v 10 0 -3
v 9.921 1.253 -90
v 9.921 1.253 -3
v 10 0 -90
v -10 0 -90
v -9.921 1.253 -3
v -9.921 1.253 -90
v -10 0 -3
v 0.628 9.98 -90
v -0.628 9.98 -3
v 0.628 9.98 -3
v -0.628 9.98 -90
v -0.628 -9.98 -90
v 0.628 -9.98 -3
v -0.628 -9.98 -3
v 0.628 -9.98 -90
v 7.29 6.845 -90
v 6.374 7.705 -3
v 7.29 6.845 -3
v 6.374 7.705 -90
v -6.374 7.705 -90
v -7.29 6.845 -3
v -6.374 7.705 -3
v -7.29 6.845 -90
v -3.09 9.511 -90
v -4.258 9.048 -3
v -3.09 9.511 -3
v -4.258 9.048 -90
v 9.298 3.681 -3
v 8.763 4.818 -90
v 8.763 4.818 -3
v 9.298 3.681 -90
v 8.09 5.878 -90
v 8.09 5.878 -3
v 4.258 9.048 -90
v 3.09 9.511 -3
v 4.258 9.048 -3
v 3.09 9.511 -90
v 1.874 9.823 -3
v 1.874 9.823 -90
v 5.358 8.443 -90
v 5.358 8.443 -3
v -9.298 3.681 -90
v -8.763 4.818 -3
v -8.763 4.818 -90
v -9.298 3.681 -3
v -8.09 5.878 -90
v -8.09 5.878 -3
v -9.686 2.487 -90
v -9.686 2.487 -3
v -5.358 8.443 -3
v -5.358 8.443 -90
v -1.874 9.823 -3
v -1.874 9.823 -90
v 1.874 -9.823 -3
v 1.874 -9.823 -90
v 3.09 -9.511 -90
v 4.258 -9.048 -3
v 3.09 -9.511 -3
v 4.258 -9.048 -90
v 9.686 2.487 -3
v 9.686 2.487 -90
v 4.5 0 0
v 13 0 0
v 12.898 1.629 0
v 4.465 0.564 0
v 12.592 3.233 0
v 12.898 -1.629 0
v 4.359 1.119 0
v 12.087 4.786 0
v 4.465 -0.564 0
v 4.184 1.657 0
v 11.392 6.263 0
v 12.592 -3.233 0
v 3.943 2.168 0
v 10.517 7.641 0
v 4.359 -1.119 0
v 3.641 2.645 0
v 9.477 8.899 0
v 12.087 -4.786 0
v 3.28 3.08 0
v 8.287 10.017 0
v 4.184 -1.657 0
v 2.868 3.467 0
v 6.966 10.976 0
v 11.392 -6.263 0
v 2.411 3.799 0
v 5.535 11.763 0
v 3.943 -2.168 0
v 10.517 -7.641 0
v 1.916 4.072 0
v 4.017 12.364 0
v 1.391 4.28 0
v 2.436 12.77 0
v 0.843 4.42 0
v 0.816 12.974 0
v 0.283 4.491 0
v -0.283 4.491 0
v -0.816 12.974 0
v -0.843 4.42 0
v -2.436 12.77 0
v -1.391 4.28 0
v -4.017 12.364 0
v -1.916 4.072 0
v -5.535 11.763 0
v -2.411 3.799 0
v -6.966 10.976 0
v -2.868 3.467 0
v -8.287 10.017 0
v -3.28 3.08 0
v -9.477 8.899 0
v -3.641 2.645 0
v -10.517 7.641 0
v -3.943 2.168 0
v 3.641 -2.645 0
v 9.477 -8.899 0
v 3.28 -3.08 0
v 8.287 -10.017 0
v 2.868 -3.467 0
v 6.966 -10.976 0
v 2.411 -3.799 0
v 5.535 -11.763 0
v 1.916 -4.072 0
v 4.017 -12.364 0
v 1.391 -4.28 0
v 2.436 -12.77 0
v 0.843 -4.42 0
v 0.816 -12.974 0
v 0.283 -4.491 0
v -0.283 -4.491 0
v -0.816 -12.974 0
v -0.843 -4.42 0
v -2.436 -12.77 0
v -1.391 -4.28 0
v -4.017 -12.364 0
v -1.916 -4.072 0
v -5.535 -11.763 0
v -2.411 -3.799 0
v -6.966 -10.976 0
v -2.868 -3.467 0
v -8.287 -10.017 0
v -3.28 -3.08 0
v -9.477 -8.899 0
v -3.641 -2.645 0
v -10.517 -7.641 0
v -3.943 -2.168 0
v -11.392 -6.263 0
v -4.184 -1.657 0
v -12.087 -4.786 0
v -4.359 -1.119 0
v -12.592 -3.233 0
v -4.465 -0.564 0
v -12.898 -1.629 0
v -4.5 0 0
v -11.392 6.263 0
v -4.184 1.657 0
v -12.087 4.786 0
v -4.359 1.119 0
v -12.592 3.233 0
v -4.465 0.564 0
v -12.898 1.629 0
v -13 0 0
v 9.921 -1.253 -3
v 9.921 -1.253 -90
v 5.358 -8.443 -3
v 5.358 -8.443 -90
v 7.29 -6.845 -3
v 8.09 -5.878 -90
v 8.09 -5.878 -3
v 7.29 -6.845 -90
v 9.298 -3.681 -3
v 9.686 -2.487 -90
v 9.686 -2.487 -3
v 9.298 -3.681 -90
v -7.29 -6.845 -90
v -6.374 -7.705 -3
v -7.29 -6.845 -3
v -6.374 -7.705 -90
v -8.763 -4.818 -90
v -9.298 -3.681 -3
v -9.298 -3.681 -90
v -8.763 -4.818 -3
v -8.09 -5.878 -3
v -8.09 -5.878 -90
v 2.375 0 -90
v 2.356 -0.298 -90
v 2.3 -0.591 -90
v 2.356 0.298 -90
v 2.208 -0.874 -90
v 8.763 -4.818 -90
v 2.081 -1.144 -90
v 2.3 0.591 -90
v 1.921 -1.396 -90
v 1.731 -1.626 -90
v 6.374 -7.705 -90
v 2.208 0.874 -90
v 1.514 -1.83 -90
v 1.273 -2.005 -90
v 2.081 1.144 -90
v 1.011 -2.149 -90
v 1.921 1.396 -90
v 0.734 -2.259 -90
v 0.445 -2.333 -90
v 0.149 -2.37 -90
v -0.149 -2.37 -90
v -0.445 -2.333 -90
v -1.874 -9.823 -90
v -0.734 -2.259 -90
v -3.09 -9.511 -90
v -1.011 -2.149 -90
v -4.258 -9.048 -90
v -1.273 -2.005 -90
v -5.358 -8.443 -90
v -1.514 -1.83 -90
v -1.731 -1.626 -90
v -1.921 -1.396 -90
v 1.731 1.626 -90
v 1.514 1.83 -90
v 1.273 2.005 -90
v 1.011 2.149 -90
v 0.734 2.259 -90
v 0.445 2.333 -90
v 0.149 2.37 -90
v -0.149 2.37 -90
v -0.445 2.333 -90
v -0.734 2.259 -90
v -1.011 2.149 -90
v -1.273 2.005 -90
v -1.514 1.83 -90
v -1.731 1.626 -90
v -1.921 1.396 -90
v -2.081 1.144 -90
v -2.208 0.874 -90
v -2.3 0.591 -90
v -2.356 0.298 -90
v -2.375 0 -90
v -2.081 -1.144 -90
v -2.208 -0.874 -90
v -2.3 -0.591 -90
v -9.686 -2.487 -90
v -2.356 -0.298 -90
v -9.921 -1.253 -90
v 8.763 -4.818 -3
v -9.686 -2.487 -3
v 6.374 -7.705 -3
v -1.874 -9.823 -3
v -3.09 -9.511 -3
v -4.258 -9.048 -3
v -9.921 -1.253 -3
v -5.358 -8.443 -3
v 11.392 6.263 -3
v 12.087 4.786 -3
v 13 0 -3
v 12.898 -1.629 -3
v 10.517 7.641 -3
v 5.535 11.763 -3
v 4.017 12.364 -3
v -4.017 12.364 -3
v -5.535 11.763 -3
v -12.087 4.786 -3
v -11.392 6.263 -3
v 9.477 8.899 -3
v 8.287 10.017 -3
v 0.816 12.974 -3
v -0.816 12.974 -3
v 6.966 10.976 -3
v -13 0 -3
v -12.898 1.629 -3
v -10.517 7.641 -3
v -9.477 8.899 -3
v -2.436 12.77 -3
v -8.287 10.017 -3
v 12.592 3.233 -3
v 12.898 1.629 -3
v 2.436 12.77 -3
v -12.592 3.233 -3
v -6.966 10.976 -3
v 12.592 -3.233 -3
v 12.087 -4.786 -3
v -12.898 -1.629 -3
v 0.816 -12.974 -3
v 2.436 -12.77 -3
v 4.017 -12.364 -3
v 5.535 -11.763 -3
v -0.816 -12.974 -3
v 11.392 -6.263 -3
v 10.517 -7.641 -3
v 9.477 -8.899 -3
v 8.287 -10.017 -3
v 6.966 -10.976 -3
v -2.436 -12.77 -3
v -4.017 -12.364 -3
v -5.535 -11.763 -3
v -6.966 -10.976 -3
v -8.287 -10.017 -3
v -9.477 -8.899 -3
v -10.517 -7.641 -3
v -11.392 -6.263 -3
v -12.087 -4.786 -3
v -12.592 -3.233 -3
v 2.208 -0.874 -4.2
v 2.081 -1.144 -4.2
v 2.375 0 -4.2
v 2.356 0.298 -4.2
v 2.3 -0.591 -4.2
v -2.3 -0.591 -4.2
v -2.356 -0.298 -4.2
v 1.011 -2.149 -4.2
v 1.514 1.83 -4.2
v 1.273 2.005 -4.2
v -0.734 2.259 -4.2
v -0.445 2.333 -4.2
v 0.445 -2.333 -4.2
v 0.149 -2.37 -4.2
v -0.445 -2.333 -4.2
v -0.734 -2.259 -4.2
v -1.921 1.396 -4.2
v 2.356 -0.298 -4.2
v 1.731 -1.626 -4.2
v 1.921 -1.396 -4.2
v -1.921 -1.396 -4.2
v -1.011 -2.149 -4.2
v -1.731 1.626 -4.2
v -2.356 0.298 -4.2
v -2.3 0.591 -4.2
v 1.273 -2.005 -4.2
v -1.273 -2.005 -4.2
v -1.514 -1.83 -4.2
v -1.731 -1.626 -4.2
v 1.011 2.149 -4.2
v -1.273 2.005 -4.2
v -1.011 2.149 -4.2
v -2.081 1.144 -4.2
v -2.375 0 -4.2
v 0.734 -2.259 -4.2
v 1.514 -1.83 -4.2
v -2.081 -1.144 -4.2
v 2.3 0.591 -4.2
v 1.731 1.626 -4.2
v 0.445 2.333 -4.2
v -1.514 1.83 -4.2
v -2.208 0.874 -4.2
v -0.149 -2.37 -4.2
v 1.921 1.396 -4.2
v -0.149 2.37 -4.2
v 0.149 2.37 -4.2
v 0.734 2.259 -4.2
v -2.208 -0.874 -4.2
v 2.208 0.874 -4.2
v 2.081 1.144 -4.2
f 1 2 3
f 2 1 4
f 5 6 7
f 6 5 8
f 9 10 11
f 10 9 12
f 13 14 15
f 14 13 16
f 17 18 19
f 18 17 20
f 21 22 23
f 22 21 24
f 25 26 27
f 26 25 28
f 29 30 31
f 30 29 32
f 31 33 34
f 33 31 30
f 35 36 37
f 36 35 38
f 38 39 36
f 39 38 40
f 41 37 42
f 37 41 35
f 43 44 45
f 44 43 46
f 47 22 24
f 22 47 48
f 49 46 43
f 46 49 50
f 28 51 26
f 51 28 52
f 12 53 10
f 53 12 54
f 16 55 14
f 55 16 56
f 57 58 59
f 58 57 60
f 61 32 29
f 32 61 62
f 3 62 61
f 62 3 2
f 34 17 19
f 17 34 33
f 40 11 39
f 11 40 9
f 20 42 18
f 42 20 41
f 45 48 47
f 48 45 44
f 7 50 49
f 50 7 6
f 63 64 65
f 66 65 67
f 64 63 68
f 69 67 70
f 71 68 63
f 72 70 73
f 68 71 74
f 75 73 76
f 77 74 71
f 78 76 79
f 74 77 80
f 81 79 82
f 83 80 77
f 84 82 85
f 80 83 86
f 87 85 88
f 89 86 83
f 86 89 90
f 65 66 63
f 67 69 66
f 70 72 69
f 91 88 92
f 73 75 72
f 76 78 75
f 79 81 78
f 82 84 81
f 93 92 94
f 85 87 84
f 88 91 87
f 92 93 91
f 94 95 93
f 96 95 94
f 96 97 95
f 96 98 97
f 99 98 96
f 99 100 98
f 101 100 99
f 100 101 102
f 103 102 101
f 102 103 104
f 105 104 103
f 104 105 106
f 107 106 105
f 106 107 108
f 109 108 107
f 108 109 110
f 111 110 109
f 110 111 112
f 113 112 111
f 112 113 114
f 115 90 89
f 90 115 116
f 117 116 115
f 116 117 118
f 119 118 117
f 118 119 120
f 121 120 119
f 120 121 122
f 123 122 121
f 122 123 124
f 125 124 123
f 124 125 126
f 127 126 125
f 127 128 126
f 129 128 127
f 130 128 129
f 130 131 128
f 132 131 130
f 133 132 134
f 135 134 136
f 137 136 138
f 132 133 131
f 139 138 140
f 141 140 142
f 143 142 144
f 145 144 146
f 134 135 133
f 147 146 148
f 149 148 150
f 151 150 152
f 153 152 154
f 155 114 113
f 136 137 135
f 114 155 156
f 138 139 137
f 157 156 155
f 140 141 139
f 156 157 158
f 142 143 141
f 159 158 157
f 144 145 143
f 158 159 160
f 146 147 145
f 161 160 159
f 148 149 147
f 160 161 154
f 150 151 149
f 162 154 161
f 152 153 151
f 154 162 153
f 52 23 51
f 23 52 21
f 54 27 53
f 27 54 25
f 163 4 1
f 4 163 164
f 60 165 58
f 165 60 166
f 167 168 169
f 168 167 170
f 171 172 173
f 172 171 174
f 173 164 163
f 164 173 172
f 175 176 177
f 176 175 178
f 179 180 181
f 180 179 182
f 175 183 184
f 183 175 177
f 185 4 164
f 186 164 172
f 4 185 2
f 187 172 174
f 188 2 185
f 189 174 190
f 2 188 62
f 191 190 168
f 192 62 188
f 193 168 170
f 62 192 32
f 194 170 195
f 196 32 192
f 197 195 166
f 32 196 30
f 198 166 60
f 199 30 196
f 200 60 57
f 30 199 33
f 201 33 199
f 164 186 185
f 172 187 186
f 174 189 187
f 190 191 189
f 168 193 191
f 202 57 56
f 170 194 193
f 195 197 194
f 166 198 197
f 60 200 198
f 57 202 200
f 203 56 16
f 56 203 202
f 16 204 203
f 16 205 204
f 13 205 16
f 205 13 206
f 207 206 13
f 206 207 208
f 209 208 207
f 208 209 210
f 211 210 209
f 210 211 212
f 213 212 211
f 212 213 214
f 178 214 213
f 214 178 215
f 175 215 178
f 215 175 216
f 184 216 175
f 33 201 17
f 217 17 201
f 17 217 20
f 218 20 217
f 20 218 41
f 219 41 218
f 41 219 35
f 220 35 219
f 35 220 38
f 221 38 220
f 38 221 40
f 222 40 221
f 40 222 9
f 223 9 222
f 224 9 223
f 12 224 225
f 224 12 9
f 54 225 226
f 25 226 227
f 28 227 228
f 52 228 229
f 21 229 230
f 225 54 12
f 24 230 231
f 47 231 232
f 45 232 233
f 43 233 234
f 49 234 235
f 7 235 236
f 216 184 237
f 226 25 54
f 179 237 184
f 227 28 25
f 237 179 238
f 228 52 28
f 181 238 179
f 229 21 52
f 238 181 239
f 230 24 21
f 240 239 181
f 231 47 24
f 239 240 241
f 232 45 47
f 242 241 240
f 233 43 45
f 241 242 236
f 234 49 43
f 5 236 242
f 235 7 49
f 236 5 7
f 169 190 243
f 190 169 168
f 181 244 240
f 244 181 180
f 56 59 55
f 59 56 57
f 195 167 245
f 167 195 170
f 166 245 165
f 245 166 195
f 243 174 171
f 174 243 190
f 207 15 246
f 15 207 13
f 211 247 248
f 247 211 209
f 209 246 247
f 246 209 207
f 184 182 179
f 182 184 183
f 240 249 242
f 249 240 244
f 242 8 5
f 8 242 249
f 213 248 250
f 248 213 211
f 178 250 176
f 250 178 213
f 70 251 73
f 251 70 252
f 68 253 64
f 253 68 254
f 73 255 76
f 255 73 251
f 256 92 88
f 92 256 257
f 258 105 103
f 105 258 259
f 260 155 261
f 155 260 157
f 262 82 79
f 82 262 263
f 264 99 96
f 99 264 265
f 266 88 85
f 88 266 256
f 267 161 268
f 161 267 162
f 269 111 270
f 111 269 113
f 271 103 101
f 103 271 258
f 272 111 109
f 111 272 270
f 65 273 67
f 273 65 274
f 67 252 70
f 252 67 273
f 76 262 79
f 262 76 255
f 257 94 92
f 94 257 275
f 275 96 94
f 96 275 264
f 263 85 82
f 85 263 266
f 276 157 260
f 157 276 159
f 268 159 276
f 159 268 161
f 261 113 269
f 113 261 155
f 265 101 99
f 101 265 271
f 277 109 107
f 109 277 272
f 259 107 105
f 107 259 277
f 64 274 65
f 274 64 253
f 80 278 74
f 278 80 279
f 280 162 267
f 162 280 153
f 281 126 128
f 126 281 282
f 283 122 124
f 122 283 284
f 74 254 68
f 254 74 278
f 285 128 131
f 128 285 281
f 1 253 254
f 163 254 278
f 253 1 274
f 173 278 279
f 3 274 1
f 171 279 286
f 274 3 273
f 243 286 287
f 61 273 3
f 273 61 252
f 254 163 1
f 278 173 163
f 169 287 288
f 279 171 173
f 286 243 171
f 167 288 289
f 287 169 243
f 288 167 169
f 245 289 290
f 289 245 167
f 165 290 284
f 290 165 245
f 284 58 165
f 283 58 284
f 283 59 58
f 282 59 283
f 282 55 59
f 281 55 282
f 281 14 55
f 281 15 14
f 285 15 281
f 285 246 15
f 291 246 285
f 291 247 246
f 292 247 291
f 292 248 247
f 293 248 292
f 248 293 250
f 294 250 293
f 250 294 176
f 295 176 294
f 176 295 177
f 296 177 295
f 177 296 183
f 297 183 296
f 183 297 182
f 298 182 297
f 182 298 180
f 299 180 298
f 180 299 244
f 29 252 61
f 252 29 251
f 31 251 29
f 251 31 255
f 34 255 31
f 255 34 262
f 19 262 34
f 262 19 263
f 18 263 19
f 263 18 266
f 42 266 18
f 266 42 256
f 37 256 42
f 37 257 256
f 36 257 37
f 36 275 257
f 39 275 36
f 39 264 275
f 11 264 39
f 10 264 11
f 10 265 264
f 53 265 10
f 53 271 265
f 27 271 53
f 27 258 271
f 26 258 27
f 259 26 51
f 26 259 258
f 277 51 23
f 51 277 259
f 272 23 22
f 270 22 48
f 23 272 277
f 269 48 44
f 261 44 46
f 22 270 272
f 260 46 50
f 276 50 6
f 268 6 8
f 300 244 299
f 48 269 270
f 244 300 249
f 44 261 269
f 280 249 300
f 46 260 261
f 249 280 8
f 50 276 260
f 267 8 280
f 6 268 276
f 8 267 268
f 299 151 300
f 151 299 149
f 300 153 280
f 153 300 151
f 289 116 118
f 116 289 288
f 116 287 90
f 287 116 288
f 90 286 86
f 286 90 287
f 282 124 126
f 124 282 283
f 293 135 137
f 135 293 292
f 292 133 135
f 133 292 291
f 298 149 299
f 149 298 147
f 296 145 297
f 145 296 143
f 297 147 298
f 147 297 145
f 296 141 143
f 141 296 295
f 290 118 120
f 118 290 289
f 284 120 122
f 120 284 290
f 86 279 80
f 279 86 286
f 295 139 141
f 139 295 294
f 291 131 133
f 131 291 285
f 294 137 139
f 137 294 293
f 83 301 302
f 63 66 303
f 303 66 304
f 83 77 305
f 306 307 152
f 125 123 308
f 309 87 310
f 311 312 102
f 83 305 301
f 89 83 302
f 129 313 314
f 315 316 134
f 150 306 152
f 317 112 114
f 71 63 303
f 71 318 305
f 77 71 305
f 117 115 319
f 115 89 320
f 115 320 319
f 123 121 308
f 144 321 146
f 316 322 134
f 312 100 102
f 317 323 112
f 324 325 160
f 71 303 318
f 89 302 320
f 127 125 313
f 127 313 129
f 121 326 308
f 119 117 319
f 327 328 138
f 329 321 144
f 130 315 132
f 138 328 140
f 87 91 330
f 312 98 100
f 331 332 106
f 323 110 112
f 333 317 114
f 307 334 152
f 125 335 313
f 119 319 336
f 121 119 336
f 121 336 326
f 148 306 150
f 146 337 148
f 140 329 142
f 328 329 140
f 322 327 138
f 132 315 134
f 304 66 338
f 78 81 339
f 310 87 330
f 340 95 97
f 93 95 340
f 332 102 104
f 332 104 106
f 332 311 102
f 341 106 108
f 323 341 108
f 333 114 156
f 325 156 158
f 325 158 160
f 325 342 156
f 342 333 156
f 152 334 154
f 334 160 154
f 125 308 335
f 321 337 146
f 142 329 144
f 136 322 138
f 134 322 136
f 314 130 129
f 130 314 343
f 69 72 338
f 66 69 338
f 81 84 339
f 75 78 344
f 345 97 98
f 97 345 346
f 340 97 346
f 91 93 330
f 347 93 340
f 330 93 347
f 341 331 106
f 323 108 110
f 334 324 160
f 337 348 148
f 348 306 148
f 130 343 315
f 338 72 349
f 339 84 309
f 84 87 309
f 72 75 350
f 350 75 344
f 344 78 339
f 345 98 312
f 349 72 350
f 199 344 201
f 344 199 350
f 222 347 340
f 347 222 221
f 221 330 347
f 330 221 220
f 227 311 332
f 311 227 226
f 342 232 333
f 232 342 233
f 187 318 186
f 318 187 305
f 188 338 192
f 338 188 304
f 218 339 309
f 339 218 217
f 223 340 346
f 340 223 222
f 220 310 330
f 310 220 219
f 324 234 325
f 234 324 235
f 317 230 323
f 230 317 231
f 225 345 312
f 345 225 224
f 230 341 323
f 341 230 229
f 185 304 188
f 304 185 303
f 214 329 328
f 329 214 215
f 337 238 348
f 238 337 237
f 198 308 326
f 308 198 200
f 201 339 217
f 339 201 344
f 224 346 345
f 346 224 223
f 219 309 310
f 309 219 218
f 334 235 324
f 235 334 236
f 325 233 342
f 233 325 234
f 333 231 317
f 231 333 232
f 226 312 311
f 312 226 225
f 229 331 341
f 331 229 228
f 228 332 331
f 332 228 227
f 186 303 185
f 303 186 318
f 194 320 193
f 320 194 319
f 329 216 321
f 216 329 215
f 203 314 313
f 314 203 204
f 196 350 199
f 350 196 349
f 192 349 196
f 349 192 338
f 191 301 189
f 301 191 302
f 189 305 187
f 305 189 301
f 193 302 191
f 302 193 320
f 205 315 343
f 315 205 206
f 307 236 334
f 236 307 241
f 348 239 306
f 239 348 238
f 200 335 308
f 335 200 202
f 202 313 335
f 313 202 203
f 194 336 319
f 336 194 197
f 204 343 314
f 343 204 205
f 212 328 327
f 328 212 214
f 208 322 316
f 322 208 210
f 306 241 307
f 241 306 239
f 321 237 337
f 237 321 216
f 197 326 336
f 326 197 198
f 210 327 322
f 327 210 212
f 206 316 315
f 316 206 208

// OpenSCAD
$fn = 50;


difference() {
	union() {
		translate(v = [0, 0, -90.0000000000]) {
			cylinder(h = 90, r = 10.0000000000);
		}
		translate(v = [0, 0, -3.0000000000]) {
			cylinder(h = 3, r = 13.0000000000);
		}
	}
	union() {
		translate(v = [0, 0, 0]) {
			rotate(a = [0, 0, 0]) {
				difference() {
					union() {
						#translate(v = [0, 0, -90.0000000000]) {
							cylinder(h = 90, r = 2.2500000000);
						}
						#translate(v = [0, 0, -4.2000000000]) {
							cylinder(h = 4.2000000000, r1 = 2.3750000000, r2 = 4.5000000000);
						}
						#translate(v = [0, 0, -90.0000000000]) {
							cylinder(h = 90, r = 2.3750000000);
						}
						#translate(v = [0, 0, -90.0000000000]) {
							cylinder(h = 90, r = 2.2500000000);
						}
					}
					union();
				}
			}
		}
	}
}
